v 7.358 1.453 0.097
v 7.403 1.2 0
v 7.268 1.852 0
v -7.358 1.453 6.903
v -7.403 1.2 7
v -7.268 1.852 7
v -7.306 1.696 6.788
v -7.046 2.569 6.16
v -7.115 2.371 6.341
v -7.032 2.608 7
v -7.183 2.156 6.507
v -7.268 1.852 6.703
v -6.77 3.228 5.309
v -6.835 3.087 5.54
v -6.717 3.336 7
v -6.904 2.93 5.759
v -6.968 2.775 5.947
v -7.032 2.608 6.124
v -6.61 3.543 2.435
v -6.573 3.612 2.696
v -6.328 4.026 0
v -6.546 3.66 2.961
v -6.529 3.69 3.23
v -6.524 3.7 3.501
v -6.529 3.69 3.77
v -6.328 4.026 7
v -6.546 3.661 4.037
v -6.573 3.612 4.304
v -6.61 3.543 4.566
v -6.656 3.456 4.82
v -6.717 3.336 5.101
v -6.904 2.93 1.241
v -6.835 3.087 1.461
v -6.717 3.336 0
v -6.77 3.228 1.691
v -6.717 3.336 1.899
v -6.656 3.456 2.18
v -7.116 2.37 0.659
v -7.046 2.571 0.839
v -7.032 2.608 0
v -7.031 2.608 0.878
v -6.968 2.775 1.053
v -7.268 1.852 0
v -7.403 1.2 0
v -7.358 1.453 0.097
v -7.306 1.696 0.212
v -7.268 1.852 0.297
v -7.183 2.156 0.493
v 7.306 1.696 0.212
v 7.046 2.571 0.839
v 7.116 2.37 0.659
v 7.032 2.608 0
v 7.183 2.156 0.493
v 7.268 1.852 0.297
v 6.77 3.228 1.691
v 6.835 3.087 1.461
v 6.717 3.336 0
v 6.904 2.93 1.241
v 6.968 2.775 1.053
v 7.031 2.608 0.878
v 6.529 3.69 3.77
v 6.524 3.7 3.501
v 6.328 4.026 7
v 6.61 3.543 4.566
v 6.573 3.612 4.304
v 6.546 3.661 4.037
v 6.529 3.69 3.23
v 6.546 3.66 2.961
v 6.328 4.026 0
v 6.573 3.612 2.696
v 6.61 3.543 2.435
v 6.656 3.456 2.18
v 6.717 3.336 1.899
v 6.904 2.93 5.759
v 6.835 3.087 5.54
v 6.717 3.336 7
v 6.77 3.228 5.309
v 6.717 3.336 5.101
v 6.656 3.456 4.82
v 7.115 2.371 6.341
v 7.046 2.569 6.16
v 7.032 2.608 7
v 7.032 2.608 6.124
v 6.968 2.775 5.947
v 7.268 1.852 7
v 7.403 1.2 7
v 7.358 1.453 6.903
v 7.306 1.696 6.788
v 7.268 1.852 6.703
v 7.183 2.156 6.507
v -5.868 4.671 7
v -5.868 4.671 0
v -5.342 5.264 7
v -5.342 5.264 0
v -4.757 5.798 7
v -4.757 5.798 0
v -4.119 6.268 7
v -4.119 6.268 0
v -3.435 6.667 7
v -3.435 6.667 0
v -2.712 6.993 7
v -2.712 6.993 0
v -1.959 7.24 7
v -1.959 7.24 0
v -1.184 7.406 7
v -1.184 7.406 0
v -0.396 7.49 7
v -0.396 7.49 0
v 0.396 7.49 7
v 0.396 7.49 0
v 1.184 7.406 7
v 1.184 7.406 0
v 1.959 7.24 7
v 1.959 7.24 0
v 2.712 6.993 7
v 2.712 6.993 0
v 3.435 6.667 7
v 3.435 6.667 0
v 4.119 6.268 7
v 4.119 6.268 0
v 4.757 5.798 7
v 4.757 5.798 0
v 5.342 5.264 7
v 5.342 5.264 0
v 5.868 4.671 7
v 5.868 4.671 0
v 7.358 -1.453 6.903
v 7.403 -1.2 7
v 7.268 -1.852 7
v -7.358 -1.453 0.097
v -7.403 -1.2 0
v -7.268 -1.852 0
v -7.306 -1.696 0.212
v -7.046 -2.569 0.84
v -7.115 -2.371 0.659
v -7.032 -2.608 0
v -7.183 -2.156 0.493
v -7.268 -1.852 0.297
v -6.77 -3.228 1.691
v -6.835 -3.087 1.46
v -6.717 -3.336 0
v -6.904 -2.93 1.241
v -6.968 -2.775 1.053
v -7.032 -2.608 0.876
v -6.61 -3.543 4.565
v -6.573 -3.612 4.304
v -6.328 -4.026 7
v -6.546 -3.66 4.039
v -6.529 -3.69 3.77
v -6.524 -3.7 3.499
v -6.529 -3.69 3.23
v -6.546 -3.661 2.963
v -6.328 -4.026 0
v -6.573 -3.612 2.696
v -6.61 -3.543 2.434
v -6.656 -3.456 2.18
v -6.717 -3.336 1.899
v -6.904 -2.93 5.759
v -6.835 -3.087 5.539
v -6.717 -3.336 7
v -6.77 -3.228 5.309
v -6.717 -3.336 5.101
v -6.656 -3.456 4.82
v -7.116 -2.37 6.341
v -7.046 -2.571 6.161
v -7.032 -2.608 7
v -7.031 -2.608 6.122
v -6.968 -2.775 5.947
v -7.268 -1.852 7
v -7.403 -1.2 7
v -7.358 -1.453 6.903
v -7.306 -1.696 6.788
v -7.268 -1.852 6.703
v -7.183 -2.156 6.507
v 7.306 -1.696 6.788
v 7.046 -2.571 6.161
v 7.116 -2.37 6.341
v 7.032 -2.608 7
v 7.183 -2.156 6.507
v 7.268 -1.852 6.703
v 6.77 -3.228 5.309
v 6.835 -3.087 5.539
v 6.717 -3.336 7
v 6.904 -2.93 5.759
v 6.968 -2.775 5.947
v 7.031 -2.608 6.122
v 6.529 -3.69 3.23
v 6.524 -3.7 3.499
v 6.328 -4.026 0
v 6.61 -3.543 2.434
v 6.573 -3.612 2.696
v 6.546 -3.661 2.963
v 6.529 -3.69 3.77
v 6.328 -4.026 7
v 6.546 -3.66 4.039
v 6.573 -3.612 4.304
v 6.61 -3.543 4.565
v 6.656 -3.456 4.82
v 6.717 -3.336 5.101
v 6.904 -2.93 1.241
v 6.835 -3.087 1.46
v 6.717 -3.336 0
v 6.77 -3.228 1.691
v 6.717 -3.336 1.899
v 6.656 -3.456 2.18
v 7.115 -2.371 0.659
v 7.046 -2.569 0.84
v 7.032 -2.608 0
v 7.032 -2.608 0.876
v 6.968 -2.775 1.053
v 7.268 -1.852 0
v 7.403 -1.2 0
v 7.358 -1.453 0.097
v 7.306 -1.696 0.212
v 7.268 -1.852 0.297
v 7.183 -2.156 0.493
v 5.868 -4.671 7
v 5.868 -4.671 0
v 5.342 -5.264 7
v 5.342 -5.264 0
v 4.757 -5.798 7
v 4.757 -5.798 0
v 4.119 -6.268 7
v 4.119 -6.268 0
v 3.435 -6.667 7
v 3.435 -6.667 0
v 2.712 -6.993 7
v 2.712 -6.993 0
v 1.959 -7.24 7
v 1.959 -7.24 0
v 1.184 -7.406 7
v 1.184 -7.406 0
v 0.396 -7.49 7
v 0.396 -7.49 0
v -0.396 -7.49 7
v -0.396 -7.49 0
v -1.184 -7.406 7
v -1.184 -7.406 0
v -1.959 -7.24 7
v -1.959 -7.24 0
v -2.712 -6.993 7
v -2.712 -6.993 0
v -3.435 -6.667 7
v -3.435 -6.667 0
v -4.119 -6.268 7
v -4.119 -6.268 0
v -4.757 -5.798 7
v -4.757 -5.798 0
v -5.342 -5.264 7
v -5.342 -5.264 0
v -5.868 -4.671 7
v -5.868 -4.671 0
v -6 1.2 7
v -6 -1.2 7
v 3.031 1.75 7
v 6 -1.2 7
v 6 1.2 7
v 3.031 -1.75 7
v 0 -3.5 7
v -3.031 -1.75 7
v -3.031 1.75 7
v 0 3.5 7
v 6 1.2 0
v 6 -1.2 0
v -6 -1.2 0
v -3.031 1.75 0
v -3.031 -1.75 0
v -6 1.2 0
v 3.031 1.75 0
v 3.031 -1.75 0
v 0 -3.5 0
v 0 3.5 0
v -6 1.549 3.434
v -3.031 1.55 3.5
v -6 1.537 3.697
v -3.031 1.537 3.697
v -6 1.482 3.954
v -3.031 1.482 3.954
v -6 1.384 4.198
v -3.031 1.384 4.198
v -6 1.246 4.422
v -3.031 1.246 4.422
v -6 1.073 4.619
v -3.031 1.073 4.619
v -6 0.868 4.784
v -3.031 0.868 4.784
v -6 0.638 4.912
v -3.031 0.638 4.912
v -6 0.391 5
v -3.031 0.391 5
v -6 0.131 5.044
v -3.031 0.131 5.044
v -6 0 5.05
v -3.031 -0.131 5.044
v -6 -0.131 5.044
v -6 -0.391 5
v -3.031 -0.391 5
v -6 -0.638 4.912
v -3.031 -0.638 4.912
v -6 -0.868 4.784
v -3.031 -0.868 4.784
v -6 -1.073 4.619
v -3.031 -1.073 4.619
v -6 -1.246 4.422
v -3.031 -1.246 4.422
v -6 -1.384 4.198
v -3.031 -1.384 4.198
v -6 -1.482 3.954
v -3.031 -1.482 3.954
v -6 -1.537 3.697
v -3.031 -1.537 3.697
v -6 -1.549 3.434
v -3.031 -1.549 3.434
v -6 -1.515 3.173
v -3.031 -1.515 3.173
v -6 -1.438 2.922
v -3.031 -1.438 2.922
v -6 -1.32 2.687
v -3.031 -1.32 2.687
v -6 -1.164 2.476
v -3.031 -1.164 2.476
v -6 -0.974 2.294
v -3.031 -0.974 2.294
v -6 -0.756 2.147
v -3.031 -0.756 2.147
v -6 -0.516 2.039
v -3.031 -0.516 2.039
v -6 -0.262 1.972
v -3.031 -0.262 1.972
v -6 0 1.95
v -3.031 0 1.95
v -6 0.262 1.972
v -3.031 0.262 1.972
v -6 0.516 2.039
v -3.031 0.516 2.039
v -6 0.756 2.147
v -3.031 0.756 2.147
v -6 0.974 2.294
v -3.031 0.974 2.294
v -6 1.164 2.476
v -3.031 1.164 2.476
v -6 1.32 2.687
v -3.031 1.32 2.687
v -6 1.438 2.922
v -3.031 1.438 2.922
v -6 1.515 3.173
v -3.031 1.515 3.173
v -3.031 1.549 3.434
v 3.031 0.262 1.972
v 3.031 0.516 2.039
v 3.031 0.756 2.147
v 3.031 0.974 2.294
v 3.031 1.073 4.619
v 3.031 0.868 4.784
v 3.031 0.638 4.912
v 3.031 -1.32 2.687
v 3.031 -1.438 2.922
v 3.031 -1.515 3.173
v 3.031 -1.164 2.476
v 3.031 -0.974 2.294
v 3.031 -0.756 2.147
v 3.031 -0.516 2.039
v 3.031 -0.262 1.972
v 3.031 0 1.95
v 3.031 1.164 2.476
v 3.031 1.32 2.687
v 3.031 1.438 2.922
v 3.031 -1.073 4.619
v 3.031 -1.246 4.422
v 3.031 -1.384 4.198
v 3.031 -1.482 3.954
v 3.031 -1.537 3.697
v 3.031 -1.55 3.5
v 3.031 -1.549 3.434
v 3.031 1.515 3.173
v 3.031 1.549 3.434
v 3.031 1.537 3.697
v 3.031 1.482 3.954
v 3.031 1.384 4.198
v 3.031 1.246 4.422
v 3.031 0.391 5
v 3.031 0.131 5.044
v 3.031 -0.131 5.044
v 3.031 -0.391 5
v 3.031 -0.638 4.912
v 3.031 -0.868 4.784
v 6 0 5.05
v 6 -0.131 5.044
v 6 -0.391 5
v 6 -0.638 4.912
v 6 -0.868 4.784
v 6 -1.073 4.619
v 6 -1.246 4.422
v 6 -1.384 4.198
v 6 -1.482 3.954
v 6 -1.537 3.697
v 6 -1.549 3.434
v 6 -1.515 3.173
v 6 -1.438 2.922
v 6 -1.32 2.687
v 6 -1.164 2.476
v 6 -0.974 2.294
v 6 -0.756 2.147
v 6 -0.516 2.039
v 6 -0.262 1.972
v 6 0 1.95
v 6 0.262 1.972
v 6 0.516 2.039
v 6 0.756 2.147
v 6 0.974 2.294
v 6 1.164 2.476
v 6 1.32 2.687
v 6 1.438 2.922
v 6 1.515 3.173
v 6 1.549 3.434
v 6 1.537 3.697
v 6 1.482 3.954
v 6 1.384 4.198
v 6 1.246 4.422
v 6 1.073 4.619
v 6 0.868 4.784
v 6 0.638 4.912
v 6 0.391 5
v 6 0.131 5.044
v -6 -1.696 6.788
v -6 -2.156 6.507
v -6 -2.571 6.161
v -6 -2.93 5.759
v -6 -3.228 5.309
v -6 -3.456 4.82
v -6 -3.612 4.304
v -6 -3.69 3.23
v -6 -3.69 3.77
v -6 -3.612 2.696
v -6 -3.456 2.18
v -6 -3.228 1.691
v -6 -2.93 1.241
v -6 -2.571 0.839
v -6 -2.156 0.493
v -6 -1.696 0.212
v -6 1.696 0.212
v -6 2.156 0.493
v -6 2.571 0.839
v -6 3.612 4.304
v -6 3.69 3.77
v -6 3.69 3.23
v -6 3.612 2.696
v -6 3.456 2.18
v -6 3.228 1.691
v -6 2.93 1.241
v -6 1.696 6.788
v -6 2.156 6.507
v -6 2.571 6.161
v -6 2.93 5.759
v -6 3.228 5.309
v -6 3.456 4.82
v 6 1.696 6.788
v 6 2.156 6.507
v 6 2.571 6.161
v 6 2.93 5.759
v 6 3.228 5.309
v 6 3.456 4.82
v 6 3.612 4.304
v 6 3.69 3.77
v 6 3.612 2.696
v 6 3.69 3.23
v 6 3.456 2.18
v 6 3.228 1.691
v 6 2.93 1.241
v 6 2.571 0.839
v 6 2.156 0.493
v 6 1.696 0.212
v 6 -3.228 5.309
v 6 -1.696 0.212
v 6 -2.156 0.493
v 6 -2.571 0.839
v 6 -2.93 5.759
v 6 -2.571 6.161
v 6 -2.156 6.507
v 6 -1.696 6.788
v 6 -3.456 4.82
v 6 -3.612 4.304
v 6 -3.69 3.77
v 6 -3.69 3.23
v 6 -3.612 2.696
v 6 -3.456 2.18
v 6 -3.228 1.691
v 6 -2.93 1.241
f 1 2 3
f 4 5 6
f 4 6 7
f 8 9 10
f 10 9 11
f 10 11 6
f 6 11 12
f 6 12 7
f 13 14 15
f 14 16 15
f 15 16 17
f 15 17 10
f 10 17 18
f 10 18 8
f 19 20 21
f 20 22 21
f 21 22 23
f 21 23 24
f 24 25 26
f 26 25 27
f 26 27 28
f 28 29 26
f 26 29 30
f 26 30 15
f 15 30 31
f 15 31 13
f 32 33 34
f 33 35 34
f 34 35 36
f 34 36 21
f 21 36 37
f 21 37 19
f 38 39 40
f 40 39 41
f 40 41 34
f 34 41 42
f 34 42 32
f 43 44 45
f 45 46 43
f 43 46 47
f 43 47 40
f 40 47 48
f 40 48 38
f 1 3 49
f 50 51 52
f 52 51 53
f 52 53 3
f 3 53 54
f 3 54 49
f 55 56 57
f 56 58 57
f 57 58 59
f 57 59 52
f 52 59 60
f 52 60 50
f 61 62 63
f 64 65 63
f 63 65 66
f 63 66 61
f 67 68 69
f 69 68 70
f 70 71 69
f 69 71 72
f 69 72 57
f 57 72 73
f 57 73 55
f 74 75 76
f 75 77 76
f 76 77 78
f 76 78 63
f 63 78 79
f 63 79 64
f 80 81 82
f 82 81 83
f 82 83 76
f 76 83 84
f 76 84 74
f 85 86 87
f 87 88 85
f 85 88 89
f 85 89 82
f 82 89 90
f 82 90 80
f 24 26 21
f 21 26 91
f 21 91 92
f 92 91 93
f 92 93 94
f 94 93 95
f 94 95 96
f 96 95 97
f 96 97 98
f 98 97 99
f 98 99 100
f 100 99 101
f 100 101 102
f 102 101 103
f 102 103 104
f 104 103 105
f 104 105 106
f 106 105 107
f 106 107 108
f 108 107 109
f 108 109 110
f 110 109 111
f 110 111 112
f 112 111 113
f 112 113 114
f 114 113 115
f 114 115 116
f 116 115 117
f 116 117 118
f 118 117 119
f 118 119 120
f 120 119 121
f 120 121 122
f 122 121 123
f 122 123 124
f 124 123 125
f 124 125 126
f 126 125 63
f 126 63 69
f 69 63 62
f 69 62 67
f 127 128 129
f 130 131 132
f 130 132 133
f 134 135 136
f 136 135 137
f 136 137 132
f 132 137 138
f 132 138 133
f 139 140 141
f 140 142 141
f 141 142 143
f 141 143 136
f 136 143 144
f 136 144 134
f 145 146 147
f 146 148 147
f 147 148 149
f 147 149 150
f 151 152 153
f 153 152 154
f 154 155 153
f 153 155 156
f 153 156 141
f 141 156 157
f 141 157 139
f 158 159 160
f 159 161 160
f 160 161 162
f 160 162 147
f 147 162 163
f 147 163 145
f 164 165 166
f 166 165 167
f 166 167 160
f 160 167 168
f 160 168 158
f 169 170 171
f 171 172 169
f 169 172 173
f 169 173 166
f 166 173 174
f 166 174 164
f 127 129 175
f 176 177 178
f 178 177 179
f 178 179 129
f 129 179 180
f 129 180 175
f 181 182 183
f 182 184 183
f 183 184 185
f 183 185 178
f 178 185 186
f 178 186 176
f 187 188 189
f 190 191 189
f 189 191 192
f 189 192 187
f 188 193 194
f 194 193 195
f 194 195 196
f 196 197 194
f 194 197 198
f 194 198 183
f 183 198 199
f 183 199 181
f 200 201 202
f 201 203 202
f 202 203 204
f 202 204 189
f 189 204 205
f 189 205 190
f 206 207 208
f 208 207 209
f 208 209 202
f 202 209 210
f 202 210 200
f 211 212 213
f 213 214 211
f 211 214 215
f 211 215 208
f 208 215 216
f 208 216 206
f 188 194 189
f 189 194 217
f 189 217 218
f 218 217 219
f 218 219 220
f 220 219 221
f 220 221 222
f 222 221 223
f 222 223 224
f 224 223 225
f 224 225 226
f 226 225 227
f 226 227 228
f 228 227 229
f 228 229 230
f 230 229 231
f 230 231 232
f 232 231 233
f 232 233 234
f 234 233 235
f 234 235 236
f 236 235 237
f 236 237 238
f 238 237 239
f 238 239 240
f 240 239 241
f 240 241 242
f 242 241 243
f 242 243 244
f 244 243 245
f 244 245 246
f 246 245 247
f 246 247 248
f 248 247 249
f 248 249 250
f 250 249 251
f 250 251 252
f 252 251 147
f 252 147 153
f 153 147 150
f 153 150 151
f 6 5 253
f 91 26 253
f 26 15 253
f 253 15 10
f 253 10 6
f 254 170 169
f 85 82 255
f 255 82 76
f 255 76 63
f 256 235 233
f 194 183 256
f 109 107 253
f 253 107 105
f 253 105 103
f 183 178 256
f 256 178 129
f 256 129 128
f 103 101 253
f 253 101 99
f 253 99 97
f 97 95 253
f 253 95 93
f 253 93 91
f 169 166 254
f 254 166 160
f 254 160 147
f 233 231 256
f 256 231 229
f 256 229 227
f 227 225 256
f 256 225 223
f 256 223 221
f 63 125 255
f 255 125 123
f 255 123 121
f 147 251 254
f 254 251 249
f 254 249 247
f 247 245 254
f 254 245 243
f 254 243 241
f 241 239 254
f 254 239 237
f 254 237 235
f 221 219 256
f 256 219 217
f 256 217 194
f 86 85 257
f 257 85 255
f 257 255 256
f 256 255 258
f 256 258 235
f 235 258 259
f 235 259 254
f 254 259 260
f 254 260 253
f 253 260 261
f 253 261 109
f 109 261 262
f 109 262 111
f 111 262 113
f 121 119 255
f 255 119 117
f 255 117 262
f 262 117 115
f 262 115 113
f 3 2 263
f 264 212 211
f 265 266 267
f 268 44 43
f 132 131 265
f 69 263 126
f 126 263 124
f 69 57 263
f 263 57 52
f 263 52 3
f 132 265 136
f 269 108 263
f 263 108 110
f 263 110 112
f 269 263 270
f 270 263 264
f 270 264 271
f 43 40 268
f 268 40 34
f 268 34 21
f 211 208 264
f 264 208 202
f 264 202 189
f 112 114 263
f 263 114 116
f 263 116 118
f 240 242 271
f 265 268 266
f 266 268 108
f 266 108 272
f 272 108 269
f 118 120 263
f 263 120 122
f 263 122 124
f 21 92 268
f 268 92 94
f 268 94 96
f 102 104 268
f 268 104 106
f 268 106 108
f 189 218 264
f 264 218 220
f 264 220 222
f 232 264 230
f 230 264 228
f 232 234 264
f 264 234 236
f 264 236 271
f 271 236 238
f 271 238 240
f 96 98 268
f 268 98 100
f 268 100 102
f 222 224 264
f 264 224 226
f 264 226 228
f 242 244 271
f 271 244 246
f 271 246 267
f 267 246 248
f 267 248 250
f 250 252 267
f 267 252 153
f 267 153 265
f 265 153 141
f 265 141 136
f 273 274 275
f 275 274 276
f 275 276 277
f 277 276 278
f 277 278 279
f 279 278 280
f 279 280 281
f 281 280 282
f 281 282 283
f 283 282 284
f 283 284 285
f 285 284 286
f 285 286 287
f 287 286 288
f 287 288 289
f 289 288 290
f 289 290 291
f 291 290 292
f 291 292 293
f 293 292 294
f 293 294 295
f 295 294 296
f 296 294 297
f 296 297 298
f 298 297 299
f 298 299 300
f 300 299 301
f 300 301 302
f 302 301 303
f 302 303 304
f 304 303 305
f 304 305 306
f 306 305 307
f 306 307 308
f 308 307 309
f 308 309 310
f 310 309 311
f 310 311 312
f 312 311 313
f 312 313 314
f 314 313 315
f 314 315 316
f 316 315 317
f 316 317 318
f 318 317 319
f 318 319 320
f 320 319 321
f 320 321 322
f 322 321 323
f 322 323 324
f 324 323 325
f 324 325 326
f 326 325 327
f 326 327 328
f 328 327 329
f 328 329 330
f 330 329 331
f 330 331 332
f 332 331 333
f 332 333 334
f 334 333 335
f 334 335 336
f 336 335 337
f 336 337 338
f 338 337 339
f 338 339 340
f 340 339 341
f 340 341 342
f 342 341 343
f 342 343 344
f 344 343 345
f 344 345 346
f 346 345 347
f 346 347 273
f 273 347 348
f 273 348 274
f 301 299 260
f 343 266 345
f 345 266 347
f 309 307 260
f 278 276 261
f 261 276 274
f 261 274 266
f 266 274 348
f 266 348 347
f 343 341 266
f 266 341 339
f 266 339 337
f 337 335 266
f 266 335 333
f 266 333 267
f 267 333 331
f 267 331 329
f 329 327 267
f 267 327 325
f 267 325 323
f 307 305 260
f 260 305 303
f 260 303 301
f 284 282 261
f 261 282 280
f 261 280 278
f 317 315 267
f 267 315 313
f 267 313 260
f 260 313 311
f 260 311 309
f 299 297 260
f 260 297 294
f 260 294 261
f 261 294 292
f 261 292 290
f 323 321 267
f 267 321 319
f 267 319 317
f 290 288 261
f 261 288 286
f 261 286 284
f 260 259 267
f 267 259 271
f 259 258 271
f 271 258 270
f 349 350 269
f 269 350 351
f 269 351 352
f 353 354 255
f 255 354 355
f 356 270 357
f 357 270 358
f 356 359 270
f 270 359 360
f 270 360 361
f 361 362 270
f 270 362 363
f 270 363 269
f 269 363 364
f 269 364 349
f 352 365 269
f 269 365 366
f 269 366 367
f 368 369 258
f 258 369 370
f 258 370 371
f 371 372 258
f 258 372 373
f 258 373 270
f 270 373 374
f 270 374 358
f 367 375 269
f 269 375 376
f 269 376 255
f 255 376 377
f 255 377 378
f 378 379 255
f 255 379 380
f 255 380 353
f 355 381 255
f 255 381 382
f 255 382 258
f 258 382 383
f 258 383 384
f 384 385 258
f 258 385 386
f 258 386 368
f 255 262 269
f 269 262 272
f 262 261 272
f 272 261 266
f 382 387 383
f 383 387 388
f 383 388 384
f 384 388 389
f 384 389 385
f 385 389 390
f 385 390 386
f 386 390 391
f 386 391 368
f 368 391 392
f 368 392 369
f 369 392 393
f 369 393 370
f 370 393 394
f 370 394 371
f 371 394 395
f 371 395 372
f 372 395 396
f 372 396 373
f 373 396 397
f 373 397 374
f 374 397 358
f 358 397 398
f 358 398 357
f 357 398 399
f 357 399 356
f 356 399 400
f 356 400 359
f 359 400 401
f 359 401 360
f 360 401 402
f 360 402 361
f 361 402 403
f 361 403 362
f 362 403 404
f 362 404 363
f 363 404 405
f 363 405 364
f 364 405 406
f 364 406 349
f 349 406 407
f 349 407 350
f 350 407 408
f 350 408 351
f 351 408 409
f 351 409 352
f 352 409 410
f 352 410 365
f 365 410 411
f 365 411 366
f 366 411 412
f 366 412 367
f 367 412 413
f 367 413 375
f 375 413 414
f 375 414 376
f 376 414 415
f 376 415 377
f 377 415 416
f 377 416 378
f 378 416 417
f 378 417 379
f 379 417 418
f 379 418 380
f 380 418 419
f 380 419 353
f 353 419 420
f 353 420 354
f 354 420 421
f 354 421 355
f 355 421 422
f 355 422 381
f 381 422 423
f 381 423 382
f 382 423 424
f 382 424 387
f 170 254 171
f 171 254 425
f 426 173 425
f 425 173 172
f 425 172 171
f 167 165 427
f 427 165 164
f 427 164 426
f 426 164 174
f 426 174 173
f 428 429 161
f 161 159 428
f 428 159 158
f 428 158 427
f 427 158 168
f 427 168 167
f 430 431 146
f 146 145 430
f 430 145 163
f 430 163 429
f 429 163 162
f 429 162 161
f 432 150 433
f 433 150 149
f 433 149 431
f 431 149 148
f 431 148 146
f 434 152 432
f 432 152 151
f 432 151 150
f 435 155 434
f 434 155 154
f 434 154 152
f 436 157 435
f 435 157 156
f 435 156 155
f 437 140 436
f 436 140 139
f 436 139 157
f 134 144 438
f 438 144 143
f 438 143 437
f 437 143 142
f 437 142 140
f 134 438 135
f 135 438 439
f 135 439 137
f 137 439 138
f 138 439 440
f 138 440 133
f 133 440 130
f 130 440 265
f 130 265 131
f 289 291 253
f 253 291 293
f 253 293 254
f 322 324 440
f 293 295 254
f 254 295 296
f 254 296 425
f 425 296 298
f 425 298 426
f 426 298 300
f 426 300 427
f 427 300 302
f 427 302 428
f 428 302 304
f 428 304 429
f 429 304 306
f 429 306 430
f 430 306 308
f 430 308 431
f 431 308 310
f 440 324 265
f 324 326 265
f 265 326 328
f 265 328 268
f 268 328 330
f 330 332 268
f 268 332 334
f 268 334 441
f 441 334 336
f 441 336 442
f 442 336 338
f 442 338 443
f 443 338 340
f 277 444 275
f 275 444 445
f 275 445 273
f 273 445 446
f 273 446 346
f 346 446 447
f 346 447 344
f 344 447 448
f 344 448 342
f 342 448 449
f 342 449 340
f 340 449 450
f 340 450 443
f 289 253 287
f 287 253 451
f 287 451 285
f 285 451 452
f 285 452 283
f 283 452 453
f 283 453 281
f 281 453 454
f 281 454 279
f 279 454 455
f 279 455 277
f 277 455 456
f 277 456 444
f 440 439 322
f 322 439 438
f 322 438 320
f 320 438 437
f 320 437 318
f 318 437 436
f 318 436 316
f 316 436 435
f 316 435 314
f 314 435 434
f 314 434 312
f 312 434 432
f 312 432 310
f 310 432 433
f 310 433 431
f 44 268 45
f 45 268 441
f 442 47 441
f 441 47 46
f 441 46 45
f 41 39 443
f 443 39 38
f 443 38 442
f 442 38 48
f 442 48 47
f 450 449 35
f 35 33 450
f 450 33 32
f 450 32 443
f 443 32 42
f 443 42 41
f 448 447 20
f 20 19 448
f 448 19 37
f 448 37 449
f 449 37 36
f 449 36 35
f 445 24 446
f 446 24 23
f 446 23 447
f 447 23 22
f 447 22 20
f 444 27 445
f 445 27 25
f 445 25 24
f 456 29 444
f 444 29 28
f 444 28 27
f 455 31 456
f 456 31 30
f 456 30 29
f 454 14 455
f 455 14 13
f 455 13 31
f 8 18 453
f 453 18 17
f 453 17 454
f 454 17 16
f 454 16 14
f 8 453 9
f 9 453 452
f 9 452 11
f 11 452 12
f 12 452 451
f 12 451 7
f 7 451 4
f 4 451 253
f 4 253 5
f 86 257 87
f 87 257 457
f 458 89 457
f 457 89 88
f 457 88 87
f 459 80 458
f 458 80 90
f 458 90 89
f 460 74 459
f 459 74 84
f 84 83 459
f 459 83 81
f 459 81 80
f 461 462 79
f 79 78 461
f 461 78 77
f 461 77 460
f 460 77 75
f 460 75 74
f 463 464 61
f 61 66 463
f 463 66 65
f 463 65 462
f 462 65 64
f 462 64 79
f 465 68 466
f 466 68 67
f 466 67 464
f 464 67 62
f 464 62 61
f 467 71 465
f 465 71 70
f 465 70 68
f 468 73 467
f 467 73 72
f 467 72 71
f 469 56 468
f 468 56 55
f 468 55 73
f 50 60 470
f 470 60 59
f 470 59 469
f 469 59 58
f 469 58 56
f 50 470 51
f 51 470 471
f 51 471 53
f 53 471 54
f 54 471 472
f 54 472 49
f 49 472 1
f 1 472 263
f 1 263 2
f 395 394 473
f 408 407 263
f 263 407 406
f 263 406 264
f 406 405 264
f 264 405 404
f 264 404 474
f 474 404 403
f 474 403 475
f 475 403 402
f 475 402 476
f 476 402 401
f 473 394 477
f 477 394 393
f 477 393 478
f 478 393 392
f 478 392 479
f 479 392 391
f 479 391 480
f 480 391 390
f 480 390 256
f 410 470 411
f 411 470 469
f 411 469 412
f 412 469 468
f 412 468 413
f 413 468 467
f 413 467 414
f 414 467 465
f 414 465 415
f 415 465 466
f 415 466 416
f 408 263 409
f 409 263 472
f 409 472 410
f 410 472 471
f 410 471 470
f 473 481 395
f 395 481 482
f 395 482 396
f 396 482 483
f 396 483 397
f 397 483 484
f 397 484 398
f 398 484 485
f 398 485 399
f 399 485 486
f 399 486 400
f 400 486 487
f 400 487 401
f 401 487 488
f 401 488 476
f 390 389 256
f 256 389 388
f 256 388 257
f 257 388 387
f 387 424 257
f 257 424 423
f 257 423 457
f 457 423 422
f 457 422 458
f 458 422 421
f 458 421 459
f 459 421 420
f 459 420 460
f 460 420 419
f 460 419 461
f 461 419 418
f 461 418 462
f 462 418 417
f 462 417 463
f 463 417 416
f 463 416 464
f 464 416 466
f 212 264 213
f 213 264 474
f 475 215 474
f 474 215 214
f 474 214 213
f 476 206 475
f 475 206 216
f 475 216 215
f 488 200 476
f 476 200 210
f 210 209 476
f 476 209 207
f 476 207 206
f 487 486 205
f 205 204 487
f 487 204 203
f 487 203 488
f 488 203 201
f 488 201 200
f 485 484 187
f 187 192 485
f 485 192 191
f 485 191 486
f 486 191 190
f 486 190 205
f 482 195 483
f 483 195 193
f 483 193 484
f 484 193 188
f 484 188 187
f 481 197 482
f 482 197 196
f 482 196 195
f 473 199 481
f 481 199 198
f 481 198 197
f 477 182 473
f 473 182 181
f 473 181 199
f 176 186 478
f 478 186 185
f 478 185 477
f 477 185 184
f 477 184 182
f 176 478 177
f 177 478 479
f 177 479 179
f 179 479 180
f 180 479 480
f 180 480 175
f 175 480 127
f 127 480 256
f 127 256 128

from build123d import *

# Parameters (mm, degrees)
SKETCH1_R               = 7.5
BOSS_EXTRUDE2_DEPTH     = 7
CUT_EXTRUDE1_DEPTH      = 7.5
CUT_EXTRUDE1_DEPTH_BACK = 7.5
SKETCH2_R               = 1.55
SKETCH4_R               = 3.7
CUT_EXTRUDE2_DEPTH      = 4
CUT_EXTRUDE3_START      = -4
SKETCH5_R               = 3.7
CUT_EXTRUDE3_DEPTH      = 4


with BuildPart() as part:
    # Sketch1 → Boss-Extrude2 (new body)
    with BuildSketch(Plane.XY):
        Circle(SKETCH1_R)
        Polygon((-3.031088913, 1.75), (0, 3.5), (3.031088913, 1.75), (3.031088913, -1.75), (0, -3.5), (-3.031088913, -1.75), align=None, mode=Mode.SUBTRACT)
    extrude(amount=BOSS_EXTRUDE2_DEPTH)

    # Sketch2 → Cut-Extrude1 (cut, two sides: drawn at the far end of the back side and taken through both)
    with BuildSketch(Plane.ZY.offset(-CUT_EXTRUDE1_DEPTH_BACK)):
        with Locations(Location((3.5, 0, 0), (0, 0, 180))):
            Circle(SKETCH2_R)
    extrude(amount=CUT_EXTRUDE1_DEPTH + CUT_EXTRUDE1_DEPTH_BACK, mode=Mode.SUBTRACT)

    # Sketch4 → Cut-Extrude2 (cut)
    with BuildSketch(Plane.ZY.offset(6)):
        with Locations((3.5, 0)):
            Circle(SKETCH4_R)
    extrude(amount=CUT_EXTRUDE2_DEPTH, mode=Mode.SUBTRACT)

    # Sketch5 → Cut-Extrude3 (cut)
    with BuildSketch(Plane.ZY.offset(-6).offset(CUT_EXTRUDE3_START)):
        with Locations((3.5, 0)):
            Circle(SKETCH5_R)
    extrude(amount=CUT_EXTRUDE3_DEPTH, mode=Mode.SUBTRACT)


solid = part.part
